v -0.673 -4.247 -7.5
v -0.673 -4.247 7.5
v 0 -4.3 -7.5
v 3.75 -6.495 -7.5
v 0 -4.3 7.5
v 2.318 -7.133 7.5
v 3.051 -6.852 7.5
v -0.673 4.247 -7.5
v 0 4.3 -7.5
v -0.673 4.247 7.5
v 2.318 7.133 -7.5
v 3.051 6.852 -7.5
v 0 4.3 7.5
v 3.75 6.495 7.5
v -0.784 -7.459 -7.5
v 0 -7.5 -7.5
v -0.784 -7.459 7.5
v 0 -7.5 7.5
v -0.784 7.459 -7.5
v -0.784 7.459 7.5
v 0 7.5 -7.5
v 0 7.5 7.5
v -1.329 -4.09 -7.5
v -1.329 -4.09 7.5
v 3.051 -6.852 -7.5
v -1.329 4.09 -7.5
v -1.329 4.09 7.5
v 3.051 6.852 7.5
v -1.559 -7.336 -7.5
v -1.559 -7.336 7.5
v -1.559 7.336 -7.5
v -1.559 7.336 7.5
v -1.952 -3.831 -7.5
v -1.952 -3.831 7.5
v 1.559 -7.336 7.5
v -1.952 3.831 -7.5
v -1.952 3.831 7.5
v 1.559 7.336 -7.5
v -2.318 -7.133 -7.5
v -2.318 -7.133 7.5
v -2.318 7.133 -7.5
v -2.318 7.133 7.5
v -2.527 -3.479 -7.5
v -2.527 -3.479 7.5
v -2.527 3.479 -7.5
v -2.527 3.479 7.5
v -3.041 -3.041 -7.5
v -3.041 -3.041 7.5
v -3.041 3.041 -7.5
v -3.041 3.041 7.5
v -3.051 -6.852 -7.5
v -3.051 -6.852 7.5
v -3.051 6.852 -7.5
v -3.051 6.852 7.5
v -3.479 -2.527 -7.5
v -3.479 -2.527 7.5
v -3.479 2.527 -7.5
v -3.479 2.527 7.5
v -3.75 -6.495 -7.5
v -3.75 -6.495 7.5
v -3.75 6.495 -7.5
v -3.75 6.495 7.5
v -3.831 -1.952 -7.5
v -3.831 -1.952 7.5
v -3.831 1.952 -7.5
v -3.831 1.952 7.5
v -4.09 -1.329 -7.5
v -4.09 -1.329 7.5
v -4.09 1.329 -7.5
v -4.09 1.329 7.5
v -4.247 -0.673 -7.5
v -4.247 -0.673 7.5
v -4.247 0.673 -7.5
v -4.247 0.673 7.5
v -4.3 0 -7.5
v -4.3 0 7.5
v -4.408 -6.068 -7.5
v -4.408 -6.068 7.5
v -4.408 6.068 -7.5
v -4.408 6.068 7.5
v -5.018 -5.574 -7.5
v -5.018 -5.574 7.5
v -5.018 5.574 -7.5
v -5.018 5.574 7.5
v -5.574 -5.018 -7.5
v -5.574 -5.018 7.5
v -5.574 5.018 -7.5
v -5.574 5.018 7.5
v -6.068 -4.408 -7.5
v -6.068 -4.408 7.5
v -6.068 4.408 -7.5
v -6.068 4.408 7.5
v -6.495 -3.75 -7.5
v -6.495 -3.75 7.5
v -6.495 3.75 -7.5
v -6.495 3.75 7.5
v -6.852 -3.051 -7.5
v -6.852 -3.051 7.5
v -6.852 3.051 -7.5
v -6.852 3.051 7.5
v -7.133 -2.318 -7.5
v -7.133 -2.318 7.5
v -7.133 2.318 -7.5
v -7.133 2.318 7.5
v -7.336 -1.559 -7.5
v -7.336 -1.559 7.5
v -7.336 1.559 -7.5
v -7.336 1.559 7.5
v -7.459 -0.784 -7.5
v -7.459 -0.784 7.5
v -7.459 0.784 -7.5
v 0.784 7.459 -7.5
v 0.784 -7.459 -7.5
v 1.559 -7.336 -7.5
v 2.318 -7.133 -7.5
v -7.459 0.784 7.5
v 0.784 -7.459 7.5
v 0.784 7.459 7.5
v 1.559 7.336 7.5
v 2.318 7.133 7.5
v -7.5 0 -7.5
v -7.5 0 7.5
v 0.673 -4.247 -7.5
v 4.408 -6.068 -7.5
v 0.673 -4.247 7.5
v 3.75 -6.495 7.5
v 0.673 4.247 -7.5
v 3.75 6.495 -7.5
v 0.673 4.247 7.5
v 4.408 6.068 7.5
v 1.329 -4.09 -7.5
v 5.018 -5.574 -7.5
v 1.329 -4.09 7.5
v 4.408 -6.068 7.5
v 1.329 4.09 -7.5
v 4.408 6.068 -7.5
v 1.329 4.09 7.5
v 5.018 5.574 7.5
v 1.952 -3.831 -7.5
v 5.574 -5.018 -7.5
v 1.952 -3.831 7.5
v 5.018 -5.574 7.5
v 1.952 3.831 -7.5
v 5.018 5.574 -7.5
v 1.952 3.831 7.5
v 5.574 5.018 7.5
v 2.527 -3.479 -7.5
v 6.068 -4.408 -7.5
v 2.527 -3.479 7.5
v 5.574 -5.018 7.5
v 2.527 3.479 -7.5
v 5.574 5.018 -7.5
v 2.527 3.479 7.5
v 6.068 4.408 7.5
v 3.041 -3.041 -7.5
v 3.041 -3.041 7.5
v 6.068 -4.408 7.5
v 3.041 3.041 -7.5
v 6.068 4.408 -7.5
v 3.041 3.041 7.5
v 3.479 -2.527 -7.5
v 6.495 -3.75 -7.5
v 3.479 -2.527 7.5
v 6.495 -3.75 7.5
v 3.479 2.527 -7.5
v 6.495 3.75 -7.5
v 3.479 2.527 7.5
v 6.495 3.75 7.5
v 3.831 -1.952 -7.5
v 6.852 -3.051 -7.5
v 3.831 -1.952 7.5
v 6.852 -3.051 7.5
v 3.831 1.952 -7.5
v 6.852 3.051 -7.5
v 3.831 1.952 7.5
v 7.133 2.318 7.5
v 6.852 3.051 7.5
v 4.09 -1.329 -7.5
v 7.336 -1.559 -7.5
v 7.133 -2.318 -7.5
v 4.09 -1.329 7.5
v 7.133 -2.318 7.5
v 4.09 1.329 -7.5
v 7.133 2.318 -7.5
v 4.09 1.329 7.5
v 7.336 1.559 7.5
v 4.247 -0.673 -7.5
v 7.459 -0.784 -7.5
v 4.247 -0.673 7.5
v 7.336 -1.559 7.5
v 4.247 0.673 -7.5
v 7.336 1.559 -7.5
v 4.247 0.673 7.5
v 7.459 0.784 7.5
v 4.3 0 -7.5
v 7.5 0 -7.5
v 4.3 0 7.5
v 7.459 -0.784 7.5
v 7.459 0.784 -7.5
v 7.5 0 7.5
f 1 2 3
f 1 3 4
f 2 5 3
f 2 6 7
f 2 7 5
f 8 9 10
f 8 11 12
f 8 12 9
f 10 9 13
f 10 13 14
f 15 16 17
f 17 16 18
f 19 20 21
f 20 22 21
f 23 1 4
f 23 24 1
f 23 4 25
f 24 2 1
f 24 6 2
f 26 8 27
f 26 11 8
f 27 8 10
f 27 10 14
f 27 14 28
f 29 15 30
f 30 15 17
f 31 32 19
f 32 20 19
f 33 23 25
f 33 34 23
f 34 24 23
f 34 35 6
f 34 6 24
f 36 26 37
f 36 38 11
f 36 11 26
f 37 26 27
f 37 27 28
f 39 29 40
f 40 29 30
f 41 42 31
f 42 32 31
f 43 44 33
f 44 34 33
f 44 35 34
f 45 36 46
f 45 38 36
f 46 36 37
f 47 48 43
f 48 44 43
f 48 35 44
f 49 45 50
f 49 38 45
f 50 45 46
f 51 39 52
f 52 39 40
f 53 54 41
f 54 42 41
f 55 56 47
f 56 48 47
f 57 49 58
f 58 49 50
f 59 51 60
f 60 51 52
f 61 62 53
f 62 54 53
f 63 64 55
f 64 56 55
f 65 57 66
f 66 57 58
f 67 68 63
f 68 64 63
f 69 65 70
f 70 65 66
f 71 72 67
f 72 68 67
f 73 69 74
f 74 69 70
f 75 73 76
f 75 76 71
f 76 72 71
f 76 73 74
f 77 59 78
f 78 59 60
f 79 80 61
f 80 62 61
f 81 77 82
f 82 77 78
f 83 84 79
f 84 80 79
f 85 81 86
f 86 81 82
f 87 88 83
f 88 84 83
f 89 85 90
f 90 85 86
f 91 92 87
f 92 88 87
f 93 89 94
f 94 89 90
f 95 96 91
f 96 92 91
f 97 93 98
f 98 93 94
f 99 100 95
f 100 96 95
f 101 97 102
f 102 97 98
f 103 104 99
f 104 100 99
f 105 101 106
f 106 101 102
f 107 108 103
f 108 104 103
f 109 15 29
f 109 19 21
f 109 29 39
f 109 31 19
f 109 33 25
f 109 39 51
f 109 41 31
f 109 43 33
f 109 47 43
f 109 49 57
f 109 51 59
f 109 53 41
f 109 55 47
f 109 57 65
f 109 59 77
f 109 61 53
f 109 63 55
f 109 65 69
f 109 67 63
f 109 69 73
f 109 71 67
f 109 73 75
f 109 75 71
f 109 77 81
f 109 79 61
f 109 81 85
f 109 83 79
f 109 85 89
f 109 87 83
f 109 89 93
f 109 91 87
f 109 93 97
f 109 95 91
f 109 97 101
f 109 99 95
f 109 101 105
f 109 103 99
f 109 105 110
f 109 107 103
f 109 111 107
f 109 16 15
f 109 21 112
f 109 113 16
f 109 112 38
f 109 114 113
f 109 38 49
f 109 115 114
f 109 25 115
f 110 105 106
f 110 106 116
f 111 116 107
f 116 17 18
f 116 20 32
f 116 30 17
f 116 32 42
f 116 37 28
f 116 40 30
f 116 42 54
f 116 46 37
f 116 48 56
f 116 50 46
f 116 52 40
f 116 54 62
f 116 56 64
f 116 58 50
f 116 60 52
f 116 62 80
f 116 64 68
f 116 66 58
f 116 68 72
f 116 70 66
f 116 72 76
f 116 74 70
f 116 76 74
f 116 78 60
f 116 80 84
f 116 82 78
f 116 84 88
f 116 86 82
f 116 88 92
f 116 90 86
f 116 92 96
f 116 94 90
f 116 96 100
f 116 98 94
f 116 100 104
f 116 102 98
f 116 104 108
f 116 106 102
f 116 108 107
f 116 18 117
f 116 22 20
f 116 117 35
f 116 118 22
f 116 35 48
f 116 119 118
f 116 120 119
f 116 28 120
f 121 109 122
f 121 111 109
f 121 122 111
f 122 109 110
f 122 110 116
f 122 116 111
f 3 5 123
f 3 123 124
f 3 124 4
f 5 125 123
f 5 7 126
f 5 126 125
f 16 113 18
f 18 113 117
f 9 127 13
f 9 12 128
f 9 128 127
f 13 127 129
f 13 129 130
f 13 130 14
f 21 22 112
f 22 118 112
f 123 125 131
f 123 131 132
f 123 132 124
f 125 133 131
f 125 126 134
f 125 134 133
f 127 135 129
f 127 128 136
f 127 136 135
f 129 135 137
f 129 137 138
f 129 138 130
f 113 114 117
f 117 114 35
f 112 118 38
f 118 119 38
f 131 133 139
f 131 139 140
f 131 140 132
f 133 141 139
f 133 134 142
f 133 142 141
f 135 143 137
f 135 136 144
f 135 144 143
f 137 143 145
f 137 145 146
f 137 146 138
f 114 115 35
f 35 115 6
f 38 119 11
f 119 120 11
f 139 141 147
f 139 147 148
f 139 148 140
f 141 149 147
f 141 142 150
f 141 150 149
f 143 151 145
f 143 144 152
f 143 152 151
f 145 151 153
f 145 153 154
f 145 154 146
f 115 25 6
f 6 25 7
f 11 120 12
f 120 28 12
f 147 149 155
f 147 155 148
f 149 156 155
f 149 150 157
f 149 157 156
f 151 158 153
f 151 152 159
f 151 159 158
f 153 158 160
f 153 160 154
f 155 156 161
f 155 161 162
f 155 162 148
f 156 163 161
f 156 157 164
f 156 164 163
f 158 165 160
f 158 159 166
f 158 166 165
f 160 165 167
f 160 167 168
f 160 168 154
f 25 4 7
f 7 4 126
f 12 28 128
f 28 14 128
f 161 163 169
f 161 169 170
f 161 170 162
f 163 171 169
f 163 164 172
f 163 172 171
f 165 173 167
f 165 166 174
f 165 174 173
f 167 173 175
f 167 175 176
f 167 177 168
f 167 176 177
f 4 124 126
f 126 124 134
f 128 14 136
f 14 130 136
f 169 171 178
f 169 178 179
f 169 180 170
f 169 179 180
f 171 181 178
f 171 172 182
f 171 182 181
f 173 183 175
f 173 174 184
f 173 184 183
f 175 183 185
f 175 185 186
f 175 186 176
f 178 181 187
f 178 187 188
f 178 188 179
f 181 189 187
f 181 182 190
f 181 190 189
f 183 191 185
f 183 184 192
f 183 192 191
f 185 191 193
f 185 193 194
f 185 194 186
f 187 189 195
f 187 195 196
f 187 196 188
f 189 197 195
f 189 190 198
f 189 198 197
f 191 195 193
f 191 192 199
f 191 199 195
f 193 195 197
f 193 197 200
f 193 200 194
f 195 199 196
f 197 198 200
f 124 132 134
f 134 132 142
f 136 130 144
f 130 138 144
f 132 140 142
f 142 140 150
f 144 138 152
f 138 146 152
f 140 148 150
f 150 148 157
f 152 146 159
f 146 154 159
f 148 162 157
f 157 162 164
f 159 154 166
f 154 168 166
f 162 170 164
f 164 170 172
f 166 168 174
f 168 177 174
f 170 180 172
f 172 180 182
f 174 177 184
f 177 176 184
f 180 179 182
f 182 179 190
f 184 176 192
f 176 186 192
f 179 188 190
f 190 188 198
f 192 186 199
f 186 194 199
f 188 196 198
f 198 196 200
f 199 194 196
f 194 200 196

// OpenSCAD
// RebeliX
//
// spool bearing
// GNU GPL v3
// Martin Neruda
// http://www.reprap4u.cz

height = 15;

difference(){
	cylinder(r=7.5, h=height, $fn=60, center=true);
	translate([0,0,-0.1]) cylinder(r=4.3, h=30, $fn=40,center=true);
}	
